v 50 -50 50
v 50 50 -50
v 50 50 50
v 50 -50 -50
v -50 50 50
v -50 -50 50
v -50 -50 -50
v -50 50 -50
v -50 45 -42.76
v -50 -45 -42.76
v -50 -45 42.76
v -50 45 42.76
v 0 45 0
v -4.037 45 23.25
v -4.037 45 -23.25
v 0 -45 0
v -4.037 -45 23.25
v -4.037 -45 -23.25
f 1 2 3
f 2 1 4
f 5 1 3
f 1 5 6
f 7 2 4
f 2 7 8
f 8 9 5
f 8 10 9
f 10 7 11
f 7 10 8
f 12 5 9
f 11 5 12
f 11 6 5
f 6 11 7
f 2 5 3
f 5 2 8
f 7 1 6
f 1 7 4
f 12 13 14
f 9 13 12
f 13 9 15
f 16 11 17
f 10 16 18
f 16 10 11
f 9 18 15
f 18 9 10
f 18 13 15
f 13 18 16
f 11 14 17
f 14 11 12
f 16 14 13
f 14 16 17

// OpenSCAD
// file: ../include/utils.scad
function vmult(v1, v2, index=0) =
    index == len(v1) - 1
        ? [v1[index] * v2[index]]
        : concat([v1[index] * v2[index]], vmult(v1, v2, index+1));
// file: ../include/cutouts.scad
include <utils.scad>;


module inner_cutout(cutout_w=50) {
    if (build_inner_cutout) {
        point_1x=sin(cutout_vertical_angle)*cutout_inner_h/2;
        point_1y=cutout_inner_h/2;
        
        point_1=[point_1x, point_1y];
        
        point_2x=cos(cutout_inner_angle)*cutout_w;
        point_2y=sin(cutout_inner_angle)*cutout_w;
        
        point_2=[point_2x, point_2y];

        rotate([90, 180])
        translate([0, 0, -cutout_w/2])
        linear_extrude(cutout_w)
        polygon([
            [0, 0],
            point_1,
            point_2 + point_1,
            [cutout_w, 0],
            vmult(point_2 + point_1, [1, -1]),
            vmult(point_1, [1, -1])
        ]);
    } else {
        import("stl/inner_cutout.stl");
    }
}

module outer_cutout(cutout_w=100) {
    if (build_outer_cutout) {
        inner_w=cutout_w-10;
        
        point_1x=sin(cutout_vertical_angle)*cutout_outer_h/2;
        point_1y=cutout_outer_h/2;
        
        point_1=[point_1x, point_1y];
        
        point_2x=cos(cutout_outer_angle)*inner_w;
        point_2y=sin(cutout_outer_angle)*inner_w;
        
        point_2=[point_2x, point_2y];


        difference() {
            cube(cutout_w, center=true);
            
            rotate([90, 180])
            translate([0, 0, -inner_w/2])
            linear_extrude(inner_w)
            polygon([
                [0, 0],
                point_1,
                point_2 + point_1,
                [cutout_w, 0],
                vmult(point_2 + point_1, [1, -1]),
                vmult(point_1, [1, -1])
            ]);
        }
    } else {
        import("stl/outer_cutout.stl");        
    }
}
// file: ../config.scad
height=66;
diam=31;
thickn=2.15;
thickn_side=2.7;
thickn_deco=1;
overshoot_angle=7.5;

cutout_outer_angle=23;
cutout_inner_angle=35.7;
cutout_vertical_angle=10;
cutout_inner_h=38;
cutout_inner_offset=-2;
cutout_outer_h=46.5;
cutout_outer_offset=12.5;

screws_offset_x=6.5;
screws_offset_z=21.5;
screws_outer_d=3.5;
screws_inner_d=1.8;
screw_outer_thickn=1;

// Sorry, I didn't know what to name these angles
deco_side_angle_vert=3.1;
deco_side_angle_horz=1.8;
deco_side_angle_1=27;
deco_side_angle_2=12;
deco_inset=3;

// If false, use prebuilt STL, otherise build actual .scad
build_decoration_side=true;
build_decoration_top_btm=true;
build_inner_cutout=true;
build_outer_cutout=true;
build_screw_inset=true;
// main file
include <../config.scad>;
include <../include/cutouts.scad>;

build_outer_cutout=true;

outer_cutout();
